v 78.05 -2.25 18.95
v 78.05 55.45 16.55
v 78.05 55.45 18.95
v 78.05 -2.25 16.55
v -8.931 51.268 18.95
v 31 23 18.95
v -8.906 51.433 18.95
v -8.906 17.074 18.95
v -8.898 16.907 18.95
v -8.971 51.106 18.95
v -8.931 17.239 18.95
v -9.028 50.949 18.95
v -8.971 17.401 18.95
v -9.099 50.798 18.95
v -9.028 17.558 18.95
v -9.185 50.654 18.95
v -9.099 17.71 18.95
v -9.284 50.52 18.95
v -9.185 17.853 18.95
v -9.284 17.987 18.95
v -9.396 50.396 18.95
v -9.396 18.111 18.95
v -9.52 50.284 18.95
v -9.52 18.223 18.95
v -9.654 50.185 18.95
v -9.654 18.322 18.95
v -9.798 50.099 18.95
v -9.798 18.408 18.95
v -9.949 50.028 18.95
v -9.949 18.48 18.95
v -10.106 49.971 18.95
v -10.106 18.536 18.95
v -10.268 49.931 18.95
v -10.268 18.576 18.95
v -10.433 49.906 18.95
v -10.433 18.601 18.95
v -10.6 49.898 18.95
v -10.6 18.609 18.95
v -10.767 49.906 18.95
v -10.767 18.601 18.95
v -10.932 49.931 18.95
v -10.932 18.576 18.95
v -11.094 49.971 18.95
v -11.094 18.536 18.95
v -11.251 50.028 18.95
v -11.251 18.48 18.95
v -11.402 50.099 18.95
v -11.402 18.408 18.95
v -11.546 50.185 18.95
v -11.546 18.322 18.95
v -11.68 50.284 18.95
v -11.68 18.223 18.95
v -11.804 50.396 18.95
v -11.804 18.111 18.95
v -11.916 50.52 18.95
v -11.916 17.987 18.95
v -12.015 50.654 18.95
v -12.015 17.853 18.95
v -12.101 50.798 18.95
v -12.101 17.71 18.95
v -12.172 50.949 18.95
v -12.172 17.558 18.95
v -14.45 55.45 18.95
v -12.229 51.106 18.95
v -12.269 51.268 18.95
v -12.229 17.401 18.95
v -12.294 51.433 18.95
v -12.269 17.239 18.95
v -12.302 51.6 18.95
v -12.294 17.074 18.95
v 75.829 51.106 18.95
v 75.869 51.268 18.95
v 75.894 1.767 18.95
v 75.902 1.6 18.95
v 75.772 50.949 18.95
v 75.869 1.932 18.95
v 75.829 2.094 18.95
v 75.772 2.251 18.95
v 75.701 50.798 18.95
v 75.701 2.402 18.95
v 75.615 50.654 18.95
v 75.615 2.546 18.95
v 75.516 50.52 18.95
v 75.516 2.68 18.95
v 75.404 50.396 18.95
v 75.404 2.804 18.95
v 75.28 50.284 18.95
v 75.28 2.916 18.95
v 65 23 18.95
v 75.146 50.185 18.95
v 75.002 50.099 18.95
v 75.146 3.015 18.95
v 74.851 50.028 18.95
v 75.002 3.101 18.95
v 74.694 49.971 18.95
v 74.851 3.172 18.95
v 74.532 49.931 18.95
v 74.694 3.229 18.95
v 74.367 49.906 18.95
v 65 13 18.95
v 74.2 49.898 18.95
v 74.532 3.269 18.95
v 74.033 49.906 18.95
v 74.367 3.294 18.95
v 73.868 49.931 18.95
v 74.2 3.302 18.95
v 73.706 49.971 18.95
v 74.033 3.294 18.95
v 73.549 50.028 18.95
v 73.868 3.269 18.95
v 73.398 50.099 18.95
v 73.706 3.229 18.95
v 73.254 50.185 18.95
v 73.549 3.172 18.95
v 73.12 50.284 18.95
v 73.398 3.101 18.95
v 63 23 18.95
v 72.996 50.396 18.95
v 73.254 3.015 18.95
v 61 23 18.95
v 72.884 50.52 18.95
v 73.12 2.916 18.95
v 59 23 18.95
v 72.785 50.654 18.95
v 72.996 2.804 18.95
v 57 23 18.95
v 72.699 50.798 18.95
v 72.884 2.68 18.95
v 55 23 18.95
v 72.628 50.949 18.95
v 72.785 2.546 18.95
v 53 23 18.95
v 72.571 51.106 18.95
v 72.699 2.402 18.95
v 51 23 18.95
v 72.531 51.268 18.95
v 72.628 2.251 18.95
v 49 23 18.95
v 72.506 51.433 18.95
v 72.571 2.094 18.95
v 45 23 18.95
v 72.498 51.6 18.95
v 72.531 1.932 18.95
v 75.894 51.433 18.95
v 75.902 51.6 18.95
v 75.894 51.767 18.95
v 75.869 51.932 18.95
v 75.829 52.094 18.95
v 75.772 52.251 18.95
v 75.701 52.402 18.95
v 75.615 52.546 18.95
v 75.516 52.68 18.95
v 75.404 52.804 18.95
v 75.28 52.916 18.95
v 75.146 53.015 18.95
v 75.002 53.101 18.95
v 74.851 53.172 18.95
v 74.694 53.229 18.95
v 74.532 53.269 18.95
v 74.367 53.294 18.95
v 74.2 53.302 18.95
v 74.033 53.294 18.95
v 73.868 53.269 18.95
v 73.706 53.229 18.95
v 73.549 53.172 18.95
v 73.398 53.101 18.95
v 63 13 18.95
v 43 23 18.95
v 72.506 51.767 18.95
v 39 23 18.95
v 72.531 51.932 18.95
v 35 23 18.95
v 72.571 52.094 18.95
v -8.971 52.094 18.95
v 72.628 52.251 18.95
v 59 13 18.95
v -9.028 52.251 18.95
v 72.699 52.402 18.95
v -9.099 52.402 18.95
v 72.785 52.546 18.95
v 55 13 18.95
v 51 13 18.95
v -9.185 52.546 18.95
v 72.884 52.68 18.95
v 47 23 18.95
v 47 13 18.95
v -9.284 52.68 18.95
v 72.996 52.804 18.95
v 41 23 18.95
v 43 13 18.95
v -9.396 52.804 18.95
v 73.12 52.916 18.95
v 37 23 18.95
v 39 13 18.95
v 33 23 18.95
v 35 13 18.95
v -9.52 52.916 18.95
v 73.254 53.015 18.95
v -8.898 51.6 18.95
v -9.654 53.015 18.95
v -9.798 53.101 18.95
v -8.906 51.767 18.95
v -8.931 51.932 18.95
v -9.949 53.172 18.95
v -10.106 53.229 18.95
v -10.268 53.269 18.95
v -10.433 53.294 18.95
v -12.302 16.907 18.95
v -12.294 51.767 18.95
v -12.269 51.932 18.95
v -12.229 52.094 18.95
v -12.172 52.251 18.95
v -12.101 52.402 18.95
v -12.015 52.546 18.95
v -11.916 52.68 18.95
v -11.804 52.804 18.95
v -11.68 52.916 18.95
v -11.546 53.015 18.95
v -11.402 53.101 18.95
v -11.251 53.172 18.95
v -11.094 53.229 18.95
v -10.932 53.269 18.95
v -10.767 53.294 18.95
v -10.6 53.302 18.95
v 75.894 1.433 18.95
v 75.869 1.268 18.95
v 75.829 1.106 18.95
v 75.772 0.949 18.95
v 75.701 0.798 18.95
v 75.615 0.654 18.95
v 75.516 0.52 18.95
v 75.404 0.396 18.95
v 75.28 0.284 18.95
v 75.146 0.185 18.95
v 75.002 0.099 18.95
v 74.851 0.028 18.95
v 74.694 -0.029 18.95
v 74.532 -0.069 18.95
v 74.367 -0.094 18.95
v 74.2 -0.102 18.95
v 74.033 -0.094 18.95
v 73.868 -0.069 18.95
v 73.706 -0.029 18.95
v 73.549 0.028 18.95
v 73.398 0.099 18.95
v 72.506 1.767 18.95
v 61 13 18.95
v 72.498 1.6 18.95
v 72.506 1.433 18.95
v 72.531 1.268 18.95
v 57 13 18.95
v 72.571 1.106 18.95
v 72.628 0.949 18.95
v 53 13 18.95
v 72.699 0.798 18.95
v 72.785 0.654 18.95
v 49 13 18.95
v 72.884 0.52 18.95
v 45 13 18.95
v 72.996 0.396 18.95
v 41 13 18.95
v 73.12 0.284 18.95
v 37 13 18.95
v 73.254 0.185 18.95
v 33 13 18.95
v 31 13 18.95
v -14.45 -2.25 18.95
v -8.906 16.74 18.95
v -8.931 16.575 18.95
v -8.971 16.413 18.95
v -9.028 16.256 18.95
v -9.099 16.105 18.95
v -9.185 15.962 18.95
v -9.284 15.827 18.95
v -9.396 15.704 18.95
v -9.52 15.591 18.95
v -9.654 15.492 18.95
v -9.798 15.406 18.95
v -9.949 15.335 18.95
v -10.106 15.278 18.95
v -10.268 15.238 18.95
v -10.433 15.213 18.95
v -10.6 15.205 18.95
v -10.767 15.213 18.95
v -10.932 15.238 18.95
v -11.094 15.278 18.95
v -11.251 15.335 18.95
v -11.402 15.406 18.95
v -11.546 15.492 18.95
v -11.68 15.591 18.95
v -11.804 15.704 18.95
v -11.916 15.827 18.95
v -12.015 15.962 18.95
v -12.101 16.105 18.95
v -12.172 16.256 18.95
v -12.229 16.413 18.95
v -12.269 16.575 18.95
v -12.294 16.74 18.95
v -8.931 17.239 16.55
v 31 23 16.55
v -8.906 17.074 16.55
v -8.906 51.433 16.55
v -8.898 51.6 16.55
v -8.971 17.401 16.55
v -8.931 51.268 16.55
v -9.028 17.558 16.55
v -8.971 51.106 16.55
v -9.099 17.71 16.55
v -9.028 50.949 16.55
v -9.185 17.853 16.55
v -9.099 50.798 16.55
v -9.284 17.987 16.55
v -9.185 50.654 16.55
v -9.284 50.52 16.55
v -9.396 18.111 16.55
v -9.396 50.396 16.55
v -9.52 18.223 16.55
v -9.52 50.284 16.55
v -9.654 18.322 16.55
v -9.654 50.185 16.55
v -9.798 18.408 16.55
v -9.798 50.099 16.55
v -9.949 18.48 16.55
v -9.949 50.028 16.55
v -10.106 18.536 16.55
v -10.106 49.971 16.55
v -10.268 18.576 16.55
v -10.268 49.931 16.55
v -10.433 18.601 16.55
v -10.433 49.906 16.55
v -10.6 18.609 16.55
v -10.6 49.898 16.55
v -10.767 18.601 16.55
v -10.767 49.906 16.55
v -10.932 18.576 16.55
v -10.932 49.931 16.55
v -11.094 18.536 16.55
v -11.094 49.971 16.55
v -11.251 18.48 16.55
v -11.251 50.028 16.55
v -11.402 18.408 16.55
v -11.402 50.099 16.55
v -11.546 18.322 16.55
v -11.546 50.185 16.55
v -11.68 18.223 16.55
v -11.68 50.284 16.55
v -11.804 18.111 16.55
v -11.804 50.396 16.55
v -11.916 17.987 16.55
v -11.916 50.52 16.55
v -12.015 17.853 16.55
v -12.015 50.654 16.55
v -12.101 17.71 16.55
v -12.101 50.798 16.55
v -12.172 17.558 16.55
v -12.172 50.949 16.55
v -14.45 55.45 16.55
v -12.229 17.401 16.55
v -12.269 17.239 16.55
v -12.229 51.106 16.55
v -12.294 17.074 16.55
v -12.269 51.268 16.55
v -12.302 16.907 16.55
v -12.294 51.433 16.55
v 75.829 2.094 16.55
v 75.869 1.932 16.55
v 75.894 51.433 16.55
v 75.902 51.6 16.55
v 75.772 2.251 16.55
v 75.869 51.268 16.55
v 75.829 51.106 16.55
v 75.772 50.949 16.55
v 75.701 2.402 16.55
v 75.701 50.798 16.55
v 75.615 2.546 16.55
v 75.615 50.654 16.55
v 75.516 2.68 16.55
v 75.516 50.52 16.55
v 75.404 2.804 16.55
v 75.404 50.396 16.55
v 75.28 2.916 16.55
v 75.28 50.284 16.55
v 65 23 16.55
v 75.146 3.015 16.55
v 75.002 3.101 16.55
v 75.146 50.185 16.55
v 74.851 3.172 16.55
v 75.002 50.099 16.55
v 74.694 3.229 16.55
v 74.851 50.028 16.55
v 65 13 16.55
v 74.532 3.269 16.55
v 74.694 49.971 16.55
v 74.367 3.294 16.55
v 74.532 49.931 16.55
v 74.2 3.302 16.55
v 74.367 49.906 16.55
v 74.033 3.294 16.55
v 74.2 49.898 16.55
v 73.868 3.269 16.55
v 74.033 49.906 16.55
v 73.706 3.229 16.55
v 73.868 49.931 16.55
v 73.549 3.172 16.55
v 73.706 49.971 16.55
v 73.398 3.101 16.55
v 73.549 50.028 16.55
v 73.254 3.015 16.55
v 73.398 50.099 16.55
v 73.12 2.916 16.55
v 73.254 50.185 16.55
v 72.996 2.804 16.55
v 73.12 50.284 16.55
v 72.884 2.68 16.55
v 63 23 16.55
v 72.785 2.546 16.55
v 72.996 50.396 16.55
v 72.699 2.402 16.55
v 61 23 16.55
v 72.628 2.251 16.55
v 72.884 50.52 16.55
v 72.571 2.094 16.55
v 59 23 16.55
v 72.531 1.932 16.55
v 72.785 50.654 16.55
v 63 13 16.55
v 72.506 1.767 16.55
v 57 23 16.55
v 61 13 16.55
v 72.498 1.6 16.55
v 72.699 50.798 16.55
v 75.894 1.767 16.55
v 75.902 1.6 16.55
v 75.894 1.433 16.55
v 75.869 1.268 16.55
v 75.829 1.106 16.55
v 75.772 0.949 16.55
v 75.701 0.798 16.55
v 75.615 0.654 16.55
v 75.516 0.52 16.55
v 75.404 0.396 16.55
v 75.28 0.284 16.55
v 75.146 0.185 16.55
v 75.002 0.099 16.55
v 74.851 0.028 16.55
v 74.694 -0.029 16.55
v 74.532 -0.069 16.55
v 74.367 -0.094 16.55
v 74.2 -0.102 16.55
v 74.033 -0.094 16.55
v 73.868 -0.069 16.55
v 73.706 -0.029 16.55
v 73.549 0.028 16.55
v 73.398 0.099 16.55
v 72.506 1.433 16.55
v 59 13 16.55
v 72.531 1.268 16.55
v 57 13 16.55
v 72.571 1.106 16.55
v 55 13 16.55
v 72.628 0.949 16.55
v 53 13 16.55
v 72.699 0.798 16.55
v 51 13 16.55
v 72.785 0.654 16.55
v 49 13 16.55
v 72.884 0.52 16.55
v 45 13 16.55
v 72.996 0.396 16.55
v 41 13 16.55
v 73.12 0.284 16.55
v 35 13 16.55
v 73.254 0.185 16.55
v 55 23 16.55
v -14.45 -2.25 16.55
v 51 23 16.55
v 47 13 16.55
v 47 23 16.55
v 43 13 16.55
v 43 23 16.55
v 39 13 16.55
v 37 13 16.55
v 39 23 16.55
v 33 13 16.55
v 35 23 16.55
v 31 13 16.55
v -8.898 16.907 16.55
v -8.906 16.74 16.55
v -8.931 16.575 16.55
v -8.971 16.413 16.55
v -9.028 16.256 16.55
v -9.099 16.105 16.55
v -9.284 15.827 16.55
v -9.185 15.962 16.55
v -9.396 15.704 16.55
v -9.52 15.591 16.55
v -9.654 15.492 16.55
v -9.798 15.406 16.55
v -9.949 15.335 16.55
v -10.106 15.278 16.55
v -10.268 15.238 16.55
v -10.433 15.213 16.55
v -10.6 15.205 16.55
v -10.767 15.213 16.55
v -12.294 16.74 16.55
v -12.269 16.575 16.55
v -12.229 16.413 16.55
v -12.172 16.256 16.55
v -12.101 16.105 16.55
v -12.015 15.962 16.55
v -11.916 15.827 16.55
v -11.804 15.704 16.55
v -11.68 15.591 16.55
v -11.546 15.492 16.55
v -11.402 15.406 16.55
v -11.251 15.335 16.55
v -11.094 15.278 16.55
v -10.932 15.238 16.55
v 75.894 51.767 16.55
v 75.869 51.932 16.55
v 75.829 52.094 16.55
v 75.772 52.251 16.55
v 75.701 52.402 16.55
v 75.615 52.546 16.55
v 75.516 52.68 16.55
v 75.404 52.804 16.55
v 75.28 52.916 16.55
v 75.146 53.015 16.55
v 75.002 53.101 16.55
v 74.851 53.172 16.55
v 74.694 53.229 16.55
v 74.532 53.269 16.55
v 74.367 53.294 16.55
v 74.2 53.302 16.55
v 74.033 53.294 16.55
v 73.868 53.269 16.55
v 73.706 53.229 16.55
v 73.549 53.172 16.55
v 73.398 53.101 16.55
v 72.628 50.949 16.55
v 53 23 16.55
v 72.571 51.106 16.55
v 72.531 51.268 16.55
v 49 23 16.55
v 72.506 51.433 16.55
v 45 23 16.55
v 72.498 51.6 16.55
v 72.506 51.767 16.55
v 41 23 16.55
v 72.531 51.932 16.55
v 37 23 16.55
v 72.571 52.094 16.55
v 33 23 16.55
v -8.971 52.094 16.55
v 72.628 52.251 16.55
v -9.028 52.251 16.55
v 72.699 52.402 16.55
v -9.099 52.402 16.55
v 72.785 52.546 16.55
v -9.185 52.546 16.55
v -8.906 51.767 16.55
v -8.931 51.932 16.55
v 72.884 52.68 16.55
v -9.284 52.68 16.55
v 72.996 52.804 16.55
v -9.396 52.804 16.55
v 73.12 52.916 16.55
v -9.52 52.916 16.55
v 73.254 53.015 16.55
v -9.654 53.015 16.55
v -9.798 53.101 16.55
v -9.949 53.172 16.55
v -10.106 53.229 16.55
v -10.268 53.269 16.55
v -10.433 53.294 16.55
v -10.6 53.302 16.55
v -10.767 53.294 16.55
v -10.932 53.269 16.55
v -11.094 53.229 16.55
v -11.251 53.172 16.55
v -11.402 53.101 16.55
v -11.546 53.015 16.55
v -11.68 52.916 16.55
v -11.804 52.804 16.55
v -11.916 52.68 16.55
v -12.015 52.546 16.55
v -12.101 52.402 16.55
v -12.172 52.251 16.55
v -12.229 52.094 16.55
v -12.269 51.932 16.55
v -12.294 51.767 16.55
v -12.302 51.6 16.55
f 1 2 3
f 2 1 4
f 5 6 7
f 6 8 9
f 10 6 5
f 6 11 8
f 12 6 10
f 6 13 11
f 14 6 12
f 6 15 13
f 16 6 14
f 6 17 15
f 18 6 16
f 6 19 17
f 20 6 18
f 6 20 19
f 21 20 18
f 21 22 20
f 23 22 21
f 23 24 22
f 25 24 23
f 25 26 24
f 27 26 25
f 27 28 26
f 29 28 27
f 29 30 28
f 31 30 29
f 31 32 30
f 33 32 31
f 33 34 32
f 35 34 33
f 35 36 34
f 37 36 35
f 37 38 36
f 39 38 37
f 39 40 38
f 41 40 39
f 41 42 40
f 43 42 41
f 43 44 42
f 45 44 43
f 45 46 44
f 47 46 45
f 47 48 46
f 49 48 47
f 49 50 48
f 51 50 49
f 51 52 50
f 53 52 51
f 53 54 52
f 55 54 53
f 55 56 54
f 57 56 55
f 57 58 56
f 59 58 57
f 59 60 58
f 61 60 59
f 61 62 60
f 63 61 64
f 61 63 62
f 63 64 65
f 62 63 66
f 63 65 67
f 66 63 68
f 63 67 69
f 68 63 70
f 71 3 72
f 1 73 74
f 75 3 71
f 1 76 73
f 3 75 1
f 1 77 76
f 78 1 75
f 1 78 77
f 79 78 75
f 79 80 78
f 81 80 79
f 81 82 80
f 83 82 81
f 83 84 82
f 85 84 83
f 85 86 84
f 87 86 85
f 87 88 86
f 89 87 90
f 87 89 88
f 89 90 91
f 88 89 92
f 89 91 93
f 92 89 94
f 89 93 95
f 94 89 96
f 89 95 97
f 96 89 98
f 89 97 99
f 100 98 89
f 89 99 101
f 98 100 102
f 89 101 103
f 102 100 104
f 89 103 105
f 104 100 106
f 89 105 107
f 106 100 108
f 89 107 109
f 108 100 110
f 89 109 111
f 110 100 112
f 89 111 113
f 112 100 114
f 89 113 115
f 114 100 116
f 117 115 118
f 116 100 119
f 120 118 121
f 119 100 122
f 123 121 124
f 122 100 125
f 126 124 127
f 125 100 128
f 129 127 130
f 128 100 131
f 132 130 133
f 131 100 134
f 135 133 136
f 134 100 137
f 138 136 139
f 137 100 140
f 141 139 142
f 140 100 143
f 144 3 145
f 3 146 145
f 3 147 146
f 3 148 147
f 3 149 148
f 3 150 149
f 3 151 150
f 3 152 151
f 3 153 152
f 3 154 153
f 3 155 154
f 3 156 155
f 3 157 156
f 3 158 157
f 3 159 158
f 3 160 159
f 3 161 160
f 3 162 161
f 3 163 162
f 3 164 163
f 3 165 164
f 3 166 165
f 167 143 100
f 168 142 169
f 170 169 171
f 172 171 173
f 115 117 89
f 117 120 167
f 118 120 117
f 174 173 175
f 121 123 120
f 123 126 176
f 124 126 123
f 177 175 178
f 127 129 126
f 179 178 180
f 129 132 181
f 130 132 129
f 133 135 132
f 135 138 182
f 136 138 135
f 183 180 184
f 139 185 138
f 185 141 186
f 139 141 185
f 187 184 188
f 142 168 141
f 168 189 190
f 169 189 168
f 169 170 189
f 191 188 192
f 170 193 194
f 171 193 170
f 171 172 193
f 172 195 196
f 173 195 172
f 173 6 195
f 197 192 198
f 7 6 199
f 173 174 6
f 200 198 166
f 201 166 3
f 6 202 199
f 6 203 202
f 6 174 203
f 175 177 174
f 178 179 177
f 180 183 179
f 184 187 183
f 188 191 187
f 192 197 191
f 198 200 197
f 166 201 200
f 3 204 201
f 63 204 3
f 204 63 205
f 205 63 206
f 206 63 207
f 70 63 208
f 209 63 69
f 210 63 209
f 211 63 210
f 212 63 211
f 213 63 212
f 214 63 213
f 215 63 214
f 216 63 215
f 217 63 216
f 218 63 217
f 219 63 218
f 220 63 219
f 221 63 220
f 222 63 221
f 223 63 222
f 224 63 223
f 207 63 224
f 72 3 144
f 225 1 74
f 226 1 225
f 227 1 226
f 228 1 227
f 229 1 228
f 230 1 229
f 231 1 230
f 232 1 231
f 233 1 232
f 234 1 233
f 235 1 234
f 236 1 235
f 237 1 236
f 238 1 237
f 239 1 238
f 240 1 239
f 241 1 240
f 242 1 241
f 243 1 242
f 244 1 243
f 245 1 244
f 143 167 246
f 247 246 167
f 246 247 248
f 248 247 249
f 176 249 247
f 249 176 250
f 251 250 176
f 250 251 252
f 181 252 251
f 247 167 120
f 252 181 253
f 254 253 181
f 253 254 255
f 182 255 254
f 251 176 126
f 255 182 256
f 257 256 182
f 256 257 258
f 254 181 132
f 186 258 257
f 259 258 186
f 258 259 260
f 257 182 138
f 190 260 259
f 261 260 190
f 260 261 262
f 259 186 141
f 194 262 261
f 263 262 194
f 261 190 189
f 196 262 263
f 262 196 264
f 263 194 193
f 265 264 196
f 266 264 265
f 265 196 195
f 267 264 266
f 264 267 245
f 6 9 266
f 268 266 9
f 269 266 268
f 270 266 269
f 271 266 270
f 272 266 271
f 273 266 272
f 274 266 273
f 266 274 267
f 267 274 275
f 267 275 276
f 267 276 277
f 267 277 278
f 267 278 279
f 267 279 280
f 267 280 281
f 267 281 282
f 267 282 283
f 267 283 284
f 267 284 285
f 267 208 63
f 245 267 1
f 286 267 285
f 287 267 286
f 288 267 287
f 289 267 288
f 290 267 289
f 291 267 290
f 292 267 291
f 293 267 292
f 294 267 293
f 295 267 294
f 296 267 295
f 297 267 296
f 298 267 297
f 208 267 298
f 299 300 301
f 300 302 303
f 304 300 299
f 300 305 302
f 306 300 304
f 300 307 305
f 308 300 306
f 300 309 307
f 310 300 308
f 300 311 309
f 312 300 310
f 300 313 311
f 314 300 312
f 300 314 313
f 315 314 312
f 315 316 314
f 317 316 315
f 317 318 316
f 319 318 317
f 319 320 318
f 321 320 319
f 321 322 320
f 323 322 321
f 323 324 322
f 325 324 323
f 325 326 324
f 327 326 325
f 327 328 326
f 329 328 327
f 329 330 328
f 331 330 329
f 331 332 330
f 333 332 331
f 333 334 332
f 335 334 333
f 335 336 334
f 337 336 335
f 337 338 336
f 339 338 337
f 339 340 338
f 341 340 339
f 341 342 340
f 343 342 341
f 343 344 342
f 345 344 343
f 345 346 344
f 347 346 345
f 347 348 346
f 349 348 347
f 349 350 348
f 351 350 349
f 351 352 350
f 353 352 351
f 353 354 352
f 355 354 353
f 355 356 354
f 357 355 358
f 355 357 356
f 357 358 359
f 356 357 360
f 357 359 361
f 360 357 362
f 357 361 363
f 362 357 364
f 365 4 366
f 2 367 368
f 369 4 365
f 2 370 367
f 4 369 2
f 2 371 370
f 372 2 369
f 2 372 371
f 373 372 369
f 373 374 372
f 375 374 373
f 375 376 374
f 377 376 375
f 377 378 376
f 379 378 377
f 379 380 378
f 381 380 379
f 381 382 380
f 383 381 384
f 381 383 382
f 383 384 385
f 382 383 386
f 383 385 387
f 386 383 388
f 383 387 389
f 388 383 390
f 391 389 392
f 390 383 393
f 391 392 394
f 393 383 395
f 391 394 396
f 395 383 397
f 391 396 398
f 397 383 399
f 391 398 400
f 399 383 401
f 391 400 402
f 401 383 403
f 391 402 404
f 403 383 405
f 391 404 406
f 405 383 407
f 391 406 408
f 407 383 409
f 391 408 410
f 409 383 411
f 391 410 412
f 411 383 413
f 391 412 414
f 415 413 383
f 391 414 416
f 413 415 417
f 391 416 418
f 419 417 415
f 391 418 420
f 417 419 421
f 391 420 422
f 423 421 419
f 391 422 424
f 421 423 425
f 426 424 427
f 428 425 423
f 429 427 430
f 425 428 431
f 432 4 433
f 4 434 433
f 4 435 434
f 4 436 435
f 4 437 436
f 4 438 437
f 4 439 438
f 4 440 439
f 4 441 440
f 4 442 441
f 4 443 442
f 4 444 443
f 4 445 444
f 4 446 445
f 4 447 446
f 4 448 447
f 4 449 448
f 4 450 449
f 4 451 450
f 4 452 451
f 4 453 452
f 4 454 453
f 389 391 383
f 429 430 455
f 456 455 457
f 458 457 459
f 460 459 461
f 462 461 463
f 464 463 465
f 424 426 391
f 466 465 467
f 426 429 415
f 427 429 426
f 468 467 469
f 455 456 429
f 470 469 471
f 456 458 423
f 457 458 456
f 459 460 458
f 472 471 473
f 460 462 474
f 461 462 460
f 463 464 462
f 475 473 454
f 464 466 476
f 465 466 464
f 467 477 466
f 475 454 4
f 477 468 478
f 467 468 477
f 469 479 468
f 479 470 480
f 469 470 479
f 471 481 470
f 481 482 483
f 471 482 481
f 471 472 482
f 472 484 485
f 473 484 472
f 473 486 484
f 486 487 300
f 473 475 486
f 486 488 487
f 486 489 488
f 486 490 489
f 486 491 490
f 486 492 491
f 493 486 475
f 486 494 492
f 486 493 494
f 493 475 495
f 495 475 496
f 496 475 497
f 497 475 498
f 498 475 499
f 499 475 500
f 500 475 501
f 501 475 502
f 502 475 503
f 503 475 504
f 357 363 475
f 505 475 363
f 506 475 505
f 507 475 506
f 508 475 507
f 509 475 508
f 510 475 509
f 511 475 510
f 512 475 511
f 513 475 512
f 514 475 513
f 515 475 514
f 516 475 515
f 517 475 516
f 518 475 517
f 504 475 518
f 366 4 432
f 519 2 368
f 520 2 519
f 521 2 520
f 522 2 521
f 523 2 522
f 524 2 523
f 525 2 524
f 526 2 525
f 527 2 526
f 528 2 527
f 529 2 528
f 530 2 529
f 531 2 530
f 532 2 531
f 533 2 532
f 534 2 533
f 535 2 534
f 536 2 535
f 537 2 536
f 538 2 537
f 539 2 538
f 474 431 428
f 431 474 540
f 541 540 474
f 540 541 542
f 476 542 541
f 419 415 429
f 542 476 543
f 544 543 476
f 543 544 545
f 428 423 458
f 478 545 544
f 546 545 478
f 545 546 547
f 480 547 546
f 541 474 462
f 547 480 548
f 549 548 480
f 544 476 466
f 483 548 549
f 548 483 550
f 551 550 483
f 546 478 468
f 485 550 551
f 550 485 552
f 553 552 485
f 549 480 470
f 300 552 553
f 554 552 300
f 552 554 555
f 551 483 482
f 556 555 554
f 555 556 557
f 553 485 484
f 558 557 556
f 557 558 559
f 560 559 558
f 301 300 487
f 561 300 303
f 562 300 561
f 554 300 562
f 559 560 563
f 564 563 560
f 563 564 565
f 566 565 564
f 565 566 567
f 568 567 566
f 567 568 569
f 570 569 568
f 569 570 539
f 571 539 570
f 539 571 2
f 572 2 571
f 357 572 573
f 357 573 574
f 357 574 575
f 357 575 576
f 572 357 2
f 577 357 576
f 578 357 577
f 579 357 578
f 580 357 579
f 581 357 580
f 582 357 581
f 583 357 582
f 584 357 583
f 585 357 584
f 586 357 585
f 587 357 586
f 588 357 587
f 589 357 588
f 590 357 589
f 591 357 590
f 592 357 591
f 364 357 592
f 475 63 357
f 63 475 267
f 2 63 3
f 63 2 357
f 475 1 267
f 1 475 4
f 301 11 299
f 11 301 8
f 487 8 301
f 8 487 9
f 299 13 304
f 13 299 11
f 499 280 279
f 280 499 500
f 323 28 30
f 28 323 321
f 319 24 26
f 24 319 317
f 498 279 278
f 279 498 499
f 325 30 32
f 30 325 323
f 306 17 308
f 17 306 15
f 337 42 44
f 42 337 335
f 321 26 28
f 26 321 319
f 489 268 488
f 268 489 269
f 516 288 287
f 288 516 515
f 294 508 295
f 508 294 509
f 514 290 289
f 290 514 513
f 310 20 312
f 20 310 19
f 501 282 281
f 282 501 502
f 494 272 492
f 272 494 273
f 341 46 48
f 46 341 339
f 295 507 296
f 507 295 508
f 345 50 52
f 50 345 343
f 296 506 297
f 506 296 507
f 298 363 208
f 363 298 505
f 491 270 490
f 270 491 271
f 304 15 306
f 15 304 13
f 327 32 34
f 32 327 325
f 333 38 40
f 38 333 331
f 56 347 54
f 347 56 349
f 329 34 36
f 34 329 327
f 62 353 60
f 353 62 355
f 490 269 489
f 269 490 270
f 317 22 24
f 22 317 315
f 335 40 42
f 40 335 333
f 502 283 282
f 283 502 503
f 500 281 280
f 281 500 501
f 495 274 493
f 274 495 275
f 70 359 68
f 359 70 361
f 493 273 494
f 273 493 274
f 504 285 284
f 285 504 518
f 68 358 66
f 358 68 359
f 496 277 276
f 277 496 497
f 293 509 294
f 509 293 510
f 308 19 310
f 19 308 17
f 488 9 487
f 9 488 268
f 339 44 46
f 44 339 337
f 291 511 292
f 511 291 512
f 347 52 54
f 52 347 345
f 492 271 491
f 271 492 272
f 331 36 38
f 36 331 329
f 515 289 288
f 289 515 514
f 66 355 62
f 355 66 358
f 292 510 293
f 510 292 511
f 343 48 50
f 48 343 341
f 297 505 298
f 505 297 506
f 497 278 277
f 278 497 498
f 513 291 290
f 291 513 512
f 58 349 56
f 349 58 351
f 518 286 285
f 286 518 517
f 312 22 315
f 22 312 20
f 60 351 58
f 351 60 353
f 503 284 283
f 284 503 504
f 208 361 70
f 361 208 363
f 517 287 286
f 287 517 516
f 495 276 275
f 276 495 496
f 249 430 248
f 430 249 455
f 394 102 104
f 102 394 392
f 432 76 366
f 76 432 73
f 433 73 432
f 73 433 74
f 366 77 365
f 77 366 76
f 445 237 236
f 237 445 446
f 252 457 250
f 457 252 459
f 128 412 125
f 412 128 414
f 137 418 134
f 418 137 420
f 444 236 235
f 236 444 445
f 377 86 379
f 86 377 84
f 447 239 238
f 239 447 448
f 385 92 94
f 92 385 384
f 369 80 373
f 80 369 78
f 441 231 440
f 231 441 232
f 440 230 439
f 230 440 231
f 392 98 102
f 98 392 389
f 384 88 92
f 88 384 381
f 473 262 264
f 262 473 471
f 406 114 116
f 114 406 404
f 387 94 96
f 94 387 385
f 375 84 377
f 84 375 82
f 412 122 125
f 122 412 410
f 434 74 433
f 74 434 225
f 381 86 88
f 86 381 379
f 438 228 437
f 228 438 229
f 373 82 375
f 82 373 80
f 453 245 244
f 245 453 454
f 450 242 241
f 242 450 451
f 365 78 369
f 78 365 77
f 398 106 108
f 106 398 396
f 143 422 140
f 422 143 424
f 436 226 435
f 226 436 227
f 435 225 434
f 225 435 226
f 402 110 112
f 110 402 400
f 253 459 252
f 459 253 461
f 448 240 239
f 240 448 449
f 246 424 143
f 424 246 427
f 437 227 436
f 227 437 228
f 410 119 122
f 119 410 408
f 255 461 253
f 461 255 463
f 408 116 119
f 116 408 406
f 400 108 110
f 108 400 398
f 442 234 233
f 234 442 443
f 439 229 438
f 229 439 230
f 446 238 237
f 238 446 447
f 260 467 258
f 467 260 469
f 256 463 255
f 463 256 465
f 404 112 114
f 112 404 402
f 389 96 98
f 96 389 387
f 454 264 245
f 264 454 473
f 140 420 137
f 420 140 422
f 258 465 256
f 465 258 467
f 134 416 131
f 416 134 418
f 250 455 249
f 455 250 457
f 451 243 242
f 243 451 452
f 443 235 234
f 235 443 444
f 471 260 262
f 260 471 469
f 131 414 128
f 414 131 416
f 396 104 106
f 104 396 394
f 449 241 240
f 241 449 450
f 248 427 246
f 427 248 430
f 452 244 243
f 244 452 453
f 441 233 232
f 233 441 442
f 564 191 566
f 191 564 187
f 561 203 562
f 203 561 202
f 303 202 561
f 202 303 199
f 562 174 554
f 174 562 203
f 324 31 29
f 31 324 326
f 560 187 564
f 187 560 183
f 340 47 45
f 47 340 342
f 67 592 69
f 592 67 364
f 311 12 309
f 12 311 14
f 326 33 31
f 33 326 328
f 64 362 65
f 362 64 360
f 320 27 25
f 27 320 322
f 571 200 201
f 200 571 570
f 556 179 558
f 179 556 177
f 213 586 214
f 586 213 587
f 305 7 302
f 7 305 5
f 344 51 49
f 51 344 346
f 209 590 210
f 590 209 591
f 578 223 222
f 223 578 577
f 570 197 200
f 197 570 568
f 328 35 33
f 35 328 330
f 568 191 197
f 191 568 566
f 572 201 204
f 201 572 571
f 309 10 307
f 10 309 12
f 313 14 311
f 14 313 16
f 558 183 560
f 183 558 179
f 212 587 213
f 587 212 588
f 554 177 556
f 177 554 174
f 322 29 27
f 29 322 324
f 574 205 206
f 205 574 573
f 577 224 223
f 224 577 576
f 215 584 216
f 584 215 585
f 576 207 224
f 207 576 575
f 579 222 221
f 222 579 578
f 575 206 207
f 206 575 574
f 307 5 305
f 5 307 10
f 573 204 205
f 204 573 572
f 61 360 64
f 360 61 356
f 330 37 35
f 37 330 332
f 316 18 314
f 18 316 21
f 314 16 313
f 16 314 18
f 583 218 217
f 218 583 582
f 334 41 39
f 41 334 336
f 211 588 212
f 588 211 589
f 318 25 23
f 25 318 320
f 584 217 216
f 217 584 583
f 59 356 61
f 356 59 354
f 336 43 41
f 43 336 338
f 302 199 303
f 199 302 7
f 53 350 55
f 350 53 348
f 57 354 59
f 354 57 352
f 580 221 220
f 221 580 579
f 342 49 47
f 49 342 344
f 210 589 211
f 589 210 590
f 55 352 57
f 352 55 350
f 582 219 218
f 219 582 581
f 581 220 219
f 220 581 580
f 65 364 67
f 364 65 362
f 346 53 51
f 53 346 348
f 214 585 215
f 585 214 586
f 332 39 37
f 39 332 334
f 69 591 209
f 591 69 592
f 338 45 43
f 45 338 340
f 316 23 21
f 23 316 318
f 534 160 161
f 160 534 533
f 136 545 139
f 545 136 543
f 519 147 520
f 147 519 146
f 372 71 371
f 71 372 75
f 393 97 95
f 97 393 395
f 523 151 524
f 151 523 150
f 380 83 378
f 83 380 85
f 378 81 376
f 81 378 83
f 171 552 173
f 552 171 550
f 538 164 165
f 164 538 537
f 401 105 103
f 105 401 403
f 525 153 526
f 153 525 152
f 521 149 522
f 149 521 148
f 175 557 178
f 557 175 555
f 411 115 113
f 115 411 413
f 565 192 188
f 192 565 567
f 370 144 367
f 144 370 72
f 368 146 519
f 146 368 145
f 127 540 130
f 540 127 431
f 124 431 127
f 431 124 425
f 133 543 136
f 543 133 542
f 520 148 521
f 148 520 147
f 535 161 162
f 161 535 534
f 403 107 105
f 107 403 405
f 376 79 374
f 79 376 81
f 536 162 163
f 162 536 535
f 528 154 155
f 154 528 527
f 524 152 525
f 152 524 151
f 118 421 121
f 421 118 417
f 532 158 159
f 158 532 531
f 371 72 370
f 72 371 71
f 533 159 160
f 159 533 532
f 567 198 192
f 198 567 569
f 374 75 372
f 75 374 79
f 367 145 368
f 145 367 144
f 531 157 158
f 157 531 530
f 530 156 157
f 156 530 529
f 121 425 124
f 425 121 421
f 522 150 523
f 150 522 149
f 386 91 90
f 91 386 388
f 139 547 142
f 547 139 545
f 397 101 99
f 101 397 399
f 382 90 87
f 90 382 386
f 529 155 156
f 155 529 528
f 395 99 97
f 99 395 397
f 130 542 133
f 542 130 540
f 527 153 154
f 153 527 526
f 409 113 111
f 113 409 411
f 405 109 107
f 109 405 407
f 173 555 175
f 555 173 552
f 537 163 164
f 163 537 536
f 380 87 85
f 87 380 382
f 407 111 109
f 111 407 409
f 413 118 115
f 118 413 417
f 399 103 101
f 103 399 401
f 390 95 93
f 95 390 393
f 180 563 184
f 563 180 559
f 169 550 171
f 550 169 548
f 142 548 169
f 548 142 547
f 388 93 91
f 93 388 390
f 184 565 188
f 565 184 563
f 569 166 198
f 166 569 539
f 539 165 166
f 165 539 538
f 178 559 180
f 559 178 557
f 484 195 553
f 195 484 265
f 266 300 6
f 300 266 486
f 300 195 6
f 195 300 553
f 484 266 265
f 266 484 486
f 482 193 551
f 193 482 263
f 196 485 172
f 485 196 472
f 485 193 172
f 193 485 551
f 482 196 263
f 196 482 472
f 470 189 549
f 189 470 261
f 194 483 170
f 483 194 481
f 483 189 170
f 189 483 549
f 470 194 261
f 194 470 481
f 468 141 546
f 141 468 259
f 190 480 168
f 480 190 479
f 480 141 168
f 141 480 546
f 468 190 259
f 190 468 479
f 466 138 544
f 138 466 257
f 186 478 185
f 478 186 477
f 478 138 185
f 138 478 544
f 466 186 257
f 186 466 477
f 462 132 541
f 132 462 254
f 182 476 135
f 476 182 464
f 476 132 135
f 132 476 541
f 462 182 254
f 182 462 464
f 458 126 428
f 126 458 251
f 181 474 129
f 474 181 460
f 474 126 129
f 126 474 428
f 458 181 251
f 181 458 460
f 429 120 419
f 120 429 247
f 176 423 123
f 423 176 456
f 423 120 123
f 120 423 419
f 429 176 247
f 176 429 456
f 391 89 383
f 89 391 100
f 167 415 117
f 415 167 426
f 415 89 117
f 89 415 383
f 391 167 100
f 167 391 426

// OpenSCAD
// body lid
difference() {
  union() {
    // body lid (lid_plate)
    multmatrix([[1, 0, 0, 31.8], [0, 1, 0, 26.6], [0, 0, 1, 16.55], [0, 0, 0, 1]]) translate([-46.25, -28.85, 0]) cube([92.5, 57.7, 2.4]);
  }
  // cut boss_1_lid_hole (screw_hole)
  multmatrix([[1, 0, 0, -10.6], [0, 1, 0, 16.907115], [0, 0, 1, 15.55], [0, 0, 0, 1]]) cylinder(h=4.4, d=3.4041, $fn=64);
  // cut boss_2_lid_hole (screw_hole)
  multmatrix([[1, 0, 0, 74.2], [0, 1, 0, 1.6], [0, 0, 1, 15.55], [0, 0, 0, 1]]) cylinder(h=4.4, d=3.4041, $fn=64);
  // cut boss_3_lid_hole (screw_hole)
  multmatrix([[1, 0, 0, -10.6], [0, 1, 0, 51.6], [0, 0, 1, 15.55], [0, 0, 0, 1]]) cylinder(h=4.4, d=3.4041, $fn=64);
  // cut boss_4_lid_hole (screw_hole)
  multmatrix([[1, 0, 0, 74.2], [0, 1, 0, 51.6], [0, 0, 1, 15.55], [0, 0, 0, 1]]) cylinder(h=4.4, d=3.4041, $fn=64);
  // cut vent_1 (vent_cut)
  multmatrix([[1, 0, 0, 32], [0, 1, 0, 18], [0, 0, 1, 15.55], [0, 0, 0, 1]]) translate([-1, -5, 0]) cube([2, 10, 4.4]);
  // cut vent_2 (vent_cut)
  multmatrix([[1, 0, 0, 36], [0, 1, 0, 18], [0, 0, 1, 15.55], [0, 0, 0, 1]]) translate([-1, -5, 0]) cube([2, 10, 4.4]);
  // cut vent_3 (vent_cut)
  multmatrix([[1, 0, 0, 40], [0, 1, 0, 18], [0, 0, 1, 15.55], [0, 0, 0, 1]]) translate([-1, -5, 0]) cube([2, 10, 4.4]);
  // cut vent_4 (vent_cut)
  multmatrix([[1, 0, 0, 44], [0, 1, 0, 18], [0, 0, 1, 15.55], [0, 0, 0, 1]]) translate([-1, -5, 0]) cube([2, 10, 4.4]);
  // cut vent_5 (vent_cut)
  multmatrix([[1, 0, 0, 48], [0, 1, 0, 18], [0, 0, 1, 15.55], [0, 0, 0, 1]]) translate([-1, -5, 0]) cube([2, 10, 4.4]);
  // cut vent_6 (vent_cut)
  multmatrix([[1, 0, 0, 52], [0, 1, 0, 18], [0, 0, 1, 15.55], [0, 0, 0, 1]]) translate([-1, -5, 0]) cube([2, 10, 4.4]);
  // cut vent_7 (vent_cut)
  multmatrix([[1, 0, 0, 56], [0, 1, 0, 18], [0, 0, 1, 15.55], [0, 0, 0, 1]]) translate([-1, -5, 0]) cube([2, 10, 4.4]);
  // cut vent_8 (vent_cut)
  multmatrix([[1, 0, 0, 60], [0, 1, 0, 18], [0, 0, 1, 15.55], [0, 0, 0, 1]]) translate([-1, -5, 0]) cube([2, 10, 4.4]);
  // cut vent_9 (vent_cut)
  multmatrix([[1, 0, 0, 64], [0, 1, 0, 18], [0, 0, 1, 15.55], [0, 0, 0, 1]]) translate([-1, -5, 0]) cube([2, 10, 4.4]);
}
